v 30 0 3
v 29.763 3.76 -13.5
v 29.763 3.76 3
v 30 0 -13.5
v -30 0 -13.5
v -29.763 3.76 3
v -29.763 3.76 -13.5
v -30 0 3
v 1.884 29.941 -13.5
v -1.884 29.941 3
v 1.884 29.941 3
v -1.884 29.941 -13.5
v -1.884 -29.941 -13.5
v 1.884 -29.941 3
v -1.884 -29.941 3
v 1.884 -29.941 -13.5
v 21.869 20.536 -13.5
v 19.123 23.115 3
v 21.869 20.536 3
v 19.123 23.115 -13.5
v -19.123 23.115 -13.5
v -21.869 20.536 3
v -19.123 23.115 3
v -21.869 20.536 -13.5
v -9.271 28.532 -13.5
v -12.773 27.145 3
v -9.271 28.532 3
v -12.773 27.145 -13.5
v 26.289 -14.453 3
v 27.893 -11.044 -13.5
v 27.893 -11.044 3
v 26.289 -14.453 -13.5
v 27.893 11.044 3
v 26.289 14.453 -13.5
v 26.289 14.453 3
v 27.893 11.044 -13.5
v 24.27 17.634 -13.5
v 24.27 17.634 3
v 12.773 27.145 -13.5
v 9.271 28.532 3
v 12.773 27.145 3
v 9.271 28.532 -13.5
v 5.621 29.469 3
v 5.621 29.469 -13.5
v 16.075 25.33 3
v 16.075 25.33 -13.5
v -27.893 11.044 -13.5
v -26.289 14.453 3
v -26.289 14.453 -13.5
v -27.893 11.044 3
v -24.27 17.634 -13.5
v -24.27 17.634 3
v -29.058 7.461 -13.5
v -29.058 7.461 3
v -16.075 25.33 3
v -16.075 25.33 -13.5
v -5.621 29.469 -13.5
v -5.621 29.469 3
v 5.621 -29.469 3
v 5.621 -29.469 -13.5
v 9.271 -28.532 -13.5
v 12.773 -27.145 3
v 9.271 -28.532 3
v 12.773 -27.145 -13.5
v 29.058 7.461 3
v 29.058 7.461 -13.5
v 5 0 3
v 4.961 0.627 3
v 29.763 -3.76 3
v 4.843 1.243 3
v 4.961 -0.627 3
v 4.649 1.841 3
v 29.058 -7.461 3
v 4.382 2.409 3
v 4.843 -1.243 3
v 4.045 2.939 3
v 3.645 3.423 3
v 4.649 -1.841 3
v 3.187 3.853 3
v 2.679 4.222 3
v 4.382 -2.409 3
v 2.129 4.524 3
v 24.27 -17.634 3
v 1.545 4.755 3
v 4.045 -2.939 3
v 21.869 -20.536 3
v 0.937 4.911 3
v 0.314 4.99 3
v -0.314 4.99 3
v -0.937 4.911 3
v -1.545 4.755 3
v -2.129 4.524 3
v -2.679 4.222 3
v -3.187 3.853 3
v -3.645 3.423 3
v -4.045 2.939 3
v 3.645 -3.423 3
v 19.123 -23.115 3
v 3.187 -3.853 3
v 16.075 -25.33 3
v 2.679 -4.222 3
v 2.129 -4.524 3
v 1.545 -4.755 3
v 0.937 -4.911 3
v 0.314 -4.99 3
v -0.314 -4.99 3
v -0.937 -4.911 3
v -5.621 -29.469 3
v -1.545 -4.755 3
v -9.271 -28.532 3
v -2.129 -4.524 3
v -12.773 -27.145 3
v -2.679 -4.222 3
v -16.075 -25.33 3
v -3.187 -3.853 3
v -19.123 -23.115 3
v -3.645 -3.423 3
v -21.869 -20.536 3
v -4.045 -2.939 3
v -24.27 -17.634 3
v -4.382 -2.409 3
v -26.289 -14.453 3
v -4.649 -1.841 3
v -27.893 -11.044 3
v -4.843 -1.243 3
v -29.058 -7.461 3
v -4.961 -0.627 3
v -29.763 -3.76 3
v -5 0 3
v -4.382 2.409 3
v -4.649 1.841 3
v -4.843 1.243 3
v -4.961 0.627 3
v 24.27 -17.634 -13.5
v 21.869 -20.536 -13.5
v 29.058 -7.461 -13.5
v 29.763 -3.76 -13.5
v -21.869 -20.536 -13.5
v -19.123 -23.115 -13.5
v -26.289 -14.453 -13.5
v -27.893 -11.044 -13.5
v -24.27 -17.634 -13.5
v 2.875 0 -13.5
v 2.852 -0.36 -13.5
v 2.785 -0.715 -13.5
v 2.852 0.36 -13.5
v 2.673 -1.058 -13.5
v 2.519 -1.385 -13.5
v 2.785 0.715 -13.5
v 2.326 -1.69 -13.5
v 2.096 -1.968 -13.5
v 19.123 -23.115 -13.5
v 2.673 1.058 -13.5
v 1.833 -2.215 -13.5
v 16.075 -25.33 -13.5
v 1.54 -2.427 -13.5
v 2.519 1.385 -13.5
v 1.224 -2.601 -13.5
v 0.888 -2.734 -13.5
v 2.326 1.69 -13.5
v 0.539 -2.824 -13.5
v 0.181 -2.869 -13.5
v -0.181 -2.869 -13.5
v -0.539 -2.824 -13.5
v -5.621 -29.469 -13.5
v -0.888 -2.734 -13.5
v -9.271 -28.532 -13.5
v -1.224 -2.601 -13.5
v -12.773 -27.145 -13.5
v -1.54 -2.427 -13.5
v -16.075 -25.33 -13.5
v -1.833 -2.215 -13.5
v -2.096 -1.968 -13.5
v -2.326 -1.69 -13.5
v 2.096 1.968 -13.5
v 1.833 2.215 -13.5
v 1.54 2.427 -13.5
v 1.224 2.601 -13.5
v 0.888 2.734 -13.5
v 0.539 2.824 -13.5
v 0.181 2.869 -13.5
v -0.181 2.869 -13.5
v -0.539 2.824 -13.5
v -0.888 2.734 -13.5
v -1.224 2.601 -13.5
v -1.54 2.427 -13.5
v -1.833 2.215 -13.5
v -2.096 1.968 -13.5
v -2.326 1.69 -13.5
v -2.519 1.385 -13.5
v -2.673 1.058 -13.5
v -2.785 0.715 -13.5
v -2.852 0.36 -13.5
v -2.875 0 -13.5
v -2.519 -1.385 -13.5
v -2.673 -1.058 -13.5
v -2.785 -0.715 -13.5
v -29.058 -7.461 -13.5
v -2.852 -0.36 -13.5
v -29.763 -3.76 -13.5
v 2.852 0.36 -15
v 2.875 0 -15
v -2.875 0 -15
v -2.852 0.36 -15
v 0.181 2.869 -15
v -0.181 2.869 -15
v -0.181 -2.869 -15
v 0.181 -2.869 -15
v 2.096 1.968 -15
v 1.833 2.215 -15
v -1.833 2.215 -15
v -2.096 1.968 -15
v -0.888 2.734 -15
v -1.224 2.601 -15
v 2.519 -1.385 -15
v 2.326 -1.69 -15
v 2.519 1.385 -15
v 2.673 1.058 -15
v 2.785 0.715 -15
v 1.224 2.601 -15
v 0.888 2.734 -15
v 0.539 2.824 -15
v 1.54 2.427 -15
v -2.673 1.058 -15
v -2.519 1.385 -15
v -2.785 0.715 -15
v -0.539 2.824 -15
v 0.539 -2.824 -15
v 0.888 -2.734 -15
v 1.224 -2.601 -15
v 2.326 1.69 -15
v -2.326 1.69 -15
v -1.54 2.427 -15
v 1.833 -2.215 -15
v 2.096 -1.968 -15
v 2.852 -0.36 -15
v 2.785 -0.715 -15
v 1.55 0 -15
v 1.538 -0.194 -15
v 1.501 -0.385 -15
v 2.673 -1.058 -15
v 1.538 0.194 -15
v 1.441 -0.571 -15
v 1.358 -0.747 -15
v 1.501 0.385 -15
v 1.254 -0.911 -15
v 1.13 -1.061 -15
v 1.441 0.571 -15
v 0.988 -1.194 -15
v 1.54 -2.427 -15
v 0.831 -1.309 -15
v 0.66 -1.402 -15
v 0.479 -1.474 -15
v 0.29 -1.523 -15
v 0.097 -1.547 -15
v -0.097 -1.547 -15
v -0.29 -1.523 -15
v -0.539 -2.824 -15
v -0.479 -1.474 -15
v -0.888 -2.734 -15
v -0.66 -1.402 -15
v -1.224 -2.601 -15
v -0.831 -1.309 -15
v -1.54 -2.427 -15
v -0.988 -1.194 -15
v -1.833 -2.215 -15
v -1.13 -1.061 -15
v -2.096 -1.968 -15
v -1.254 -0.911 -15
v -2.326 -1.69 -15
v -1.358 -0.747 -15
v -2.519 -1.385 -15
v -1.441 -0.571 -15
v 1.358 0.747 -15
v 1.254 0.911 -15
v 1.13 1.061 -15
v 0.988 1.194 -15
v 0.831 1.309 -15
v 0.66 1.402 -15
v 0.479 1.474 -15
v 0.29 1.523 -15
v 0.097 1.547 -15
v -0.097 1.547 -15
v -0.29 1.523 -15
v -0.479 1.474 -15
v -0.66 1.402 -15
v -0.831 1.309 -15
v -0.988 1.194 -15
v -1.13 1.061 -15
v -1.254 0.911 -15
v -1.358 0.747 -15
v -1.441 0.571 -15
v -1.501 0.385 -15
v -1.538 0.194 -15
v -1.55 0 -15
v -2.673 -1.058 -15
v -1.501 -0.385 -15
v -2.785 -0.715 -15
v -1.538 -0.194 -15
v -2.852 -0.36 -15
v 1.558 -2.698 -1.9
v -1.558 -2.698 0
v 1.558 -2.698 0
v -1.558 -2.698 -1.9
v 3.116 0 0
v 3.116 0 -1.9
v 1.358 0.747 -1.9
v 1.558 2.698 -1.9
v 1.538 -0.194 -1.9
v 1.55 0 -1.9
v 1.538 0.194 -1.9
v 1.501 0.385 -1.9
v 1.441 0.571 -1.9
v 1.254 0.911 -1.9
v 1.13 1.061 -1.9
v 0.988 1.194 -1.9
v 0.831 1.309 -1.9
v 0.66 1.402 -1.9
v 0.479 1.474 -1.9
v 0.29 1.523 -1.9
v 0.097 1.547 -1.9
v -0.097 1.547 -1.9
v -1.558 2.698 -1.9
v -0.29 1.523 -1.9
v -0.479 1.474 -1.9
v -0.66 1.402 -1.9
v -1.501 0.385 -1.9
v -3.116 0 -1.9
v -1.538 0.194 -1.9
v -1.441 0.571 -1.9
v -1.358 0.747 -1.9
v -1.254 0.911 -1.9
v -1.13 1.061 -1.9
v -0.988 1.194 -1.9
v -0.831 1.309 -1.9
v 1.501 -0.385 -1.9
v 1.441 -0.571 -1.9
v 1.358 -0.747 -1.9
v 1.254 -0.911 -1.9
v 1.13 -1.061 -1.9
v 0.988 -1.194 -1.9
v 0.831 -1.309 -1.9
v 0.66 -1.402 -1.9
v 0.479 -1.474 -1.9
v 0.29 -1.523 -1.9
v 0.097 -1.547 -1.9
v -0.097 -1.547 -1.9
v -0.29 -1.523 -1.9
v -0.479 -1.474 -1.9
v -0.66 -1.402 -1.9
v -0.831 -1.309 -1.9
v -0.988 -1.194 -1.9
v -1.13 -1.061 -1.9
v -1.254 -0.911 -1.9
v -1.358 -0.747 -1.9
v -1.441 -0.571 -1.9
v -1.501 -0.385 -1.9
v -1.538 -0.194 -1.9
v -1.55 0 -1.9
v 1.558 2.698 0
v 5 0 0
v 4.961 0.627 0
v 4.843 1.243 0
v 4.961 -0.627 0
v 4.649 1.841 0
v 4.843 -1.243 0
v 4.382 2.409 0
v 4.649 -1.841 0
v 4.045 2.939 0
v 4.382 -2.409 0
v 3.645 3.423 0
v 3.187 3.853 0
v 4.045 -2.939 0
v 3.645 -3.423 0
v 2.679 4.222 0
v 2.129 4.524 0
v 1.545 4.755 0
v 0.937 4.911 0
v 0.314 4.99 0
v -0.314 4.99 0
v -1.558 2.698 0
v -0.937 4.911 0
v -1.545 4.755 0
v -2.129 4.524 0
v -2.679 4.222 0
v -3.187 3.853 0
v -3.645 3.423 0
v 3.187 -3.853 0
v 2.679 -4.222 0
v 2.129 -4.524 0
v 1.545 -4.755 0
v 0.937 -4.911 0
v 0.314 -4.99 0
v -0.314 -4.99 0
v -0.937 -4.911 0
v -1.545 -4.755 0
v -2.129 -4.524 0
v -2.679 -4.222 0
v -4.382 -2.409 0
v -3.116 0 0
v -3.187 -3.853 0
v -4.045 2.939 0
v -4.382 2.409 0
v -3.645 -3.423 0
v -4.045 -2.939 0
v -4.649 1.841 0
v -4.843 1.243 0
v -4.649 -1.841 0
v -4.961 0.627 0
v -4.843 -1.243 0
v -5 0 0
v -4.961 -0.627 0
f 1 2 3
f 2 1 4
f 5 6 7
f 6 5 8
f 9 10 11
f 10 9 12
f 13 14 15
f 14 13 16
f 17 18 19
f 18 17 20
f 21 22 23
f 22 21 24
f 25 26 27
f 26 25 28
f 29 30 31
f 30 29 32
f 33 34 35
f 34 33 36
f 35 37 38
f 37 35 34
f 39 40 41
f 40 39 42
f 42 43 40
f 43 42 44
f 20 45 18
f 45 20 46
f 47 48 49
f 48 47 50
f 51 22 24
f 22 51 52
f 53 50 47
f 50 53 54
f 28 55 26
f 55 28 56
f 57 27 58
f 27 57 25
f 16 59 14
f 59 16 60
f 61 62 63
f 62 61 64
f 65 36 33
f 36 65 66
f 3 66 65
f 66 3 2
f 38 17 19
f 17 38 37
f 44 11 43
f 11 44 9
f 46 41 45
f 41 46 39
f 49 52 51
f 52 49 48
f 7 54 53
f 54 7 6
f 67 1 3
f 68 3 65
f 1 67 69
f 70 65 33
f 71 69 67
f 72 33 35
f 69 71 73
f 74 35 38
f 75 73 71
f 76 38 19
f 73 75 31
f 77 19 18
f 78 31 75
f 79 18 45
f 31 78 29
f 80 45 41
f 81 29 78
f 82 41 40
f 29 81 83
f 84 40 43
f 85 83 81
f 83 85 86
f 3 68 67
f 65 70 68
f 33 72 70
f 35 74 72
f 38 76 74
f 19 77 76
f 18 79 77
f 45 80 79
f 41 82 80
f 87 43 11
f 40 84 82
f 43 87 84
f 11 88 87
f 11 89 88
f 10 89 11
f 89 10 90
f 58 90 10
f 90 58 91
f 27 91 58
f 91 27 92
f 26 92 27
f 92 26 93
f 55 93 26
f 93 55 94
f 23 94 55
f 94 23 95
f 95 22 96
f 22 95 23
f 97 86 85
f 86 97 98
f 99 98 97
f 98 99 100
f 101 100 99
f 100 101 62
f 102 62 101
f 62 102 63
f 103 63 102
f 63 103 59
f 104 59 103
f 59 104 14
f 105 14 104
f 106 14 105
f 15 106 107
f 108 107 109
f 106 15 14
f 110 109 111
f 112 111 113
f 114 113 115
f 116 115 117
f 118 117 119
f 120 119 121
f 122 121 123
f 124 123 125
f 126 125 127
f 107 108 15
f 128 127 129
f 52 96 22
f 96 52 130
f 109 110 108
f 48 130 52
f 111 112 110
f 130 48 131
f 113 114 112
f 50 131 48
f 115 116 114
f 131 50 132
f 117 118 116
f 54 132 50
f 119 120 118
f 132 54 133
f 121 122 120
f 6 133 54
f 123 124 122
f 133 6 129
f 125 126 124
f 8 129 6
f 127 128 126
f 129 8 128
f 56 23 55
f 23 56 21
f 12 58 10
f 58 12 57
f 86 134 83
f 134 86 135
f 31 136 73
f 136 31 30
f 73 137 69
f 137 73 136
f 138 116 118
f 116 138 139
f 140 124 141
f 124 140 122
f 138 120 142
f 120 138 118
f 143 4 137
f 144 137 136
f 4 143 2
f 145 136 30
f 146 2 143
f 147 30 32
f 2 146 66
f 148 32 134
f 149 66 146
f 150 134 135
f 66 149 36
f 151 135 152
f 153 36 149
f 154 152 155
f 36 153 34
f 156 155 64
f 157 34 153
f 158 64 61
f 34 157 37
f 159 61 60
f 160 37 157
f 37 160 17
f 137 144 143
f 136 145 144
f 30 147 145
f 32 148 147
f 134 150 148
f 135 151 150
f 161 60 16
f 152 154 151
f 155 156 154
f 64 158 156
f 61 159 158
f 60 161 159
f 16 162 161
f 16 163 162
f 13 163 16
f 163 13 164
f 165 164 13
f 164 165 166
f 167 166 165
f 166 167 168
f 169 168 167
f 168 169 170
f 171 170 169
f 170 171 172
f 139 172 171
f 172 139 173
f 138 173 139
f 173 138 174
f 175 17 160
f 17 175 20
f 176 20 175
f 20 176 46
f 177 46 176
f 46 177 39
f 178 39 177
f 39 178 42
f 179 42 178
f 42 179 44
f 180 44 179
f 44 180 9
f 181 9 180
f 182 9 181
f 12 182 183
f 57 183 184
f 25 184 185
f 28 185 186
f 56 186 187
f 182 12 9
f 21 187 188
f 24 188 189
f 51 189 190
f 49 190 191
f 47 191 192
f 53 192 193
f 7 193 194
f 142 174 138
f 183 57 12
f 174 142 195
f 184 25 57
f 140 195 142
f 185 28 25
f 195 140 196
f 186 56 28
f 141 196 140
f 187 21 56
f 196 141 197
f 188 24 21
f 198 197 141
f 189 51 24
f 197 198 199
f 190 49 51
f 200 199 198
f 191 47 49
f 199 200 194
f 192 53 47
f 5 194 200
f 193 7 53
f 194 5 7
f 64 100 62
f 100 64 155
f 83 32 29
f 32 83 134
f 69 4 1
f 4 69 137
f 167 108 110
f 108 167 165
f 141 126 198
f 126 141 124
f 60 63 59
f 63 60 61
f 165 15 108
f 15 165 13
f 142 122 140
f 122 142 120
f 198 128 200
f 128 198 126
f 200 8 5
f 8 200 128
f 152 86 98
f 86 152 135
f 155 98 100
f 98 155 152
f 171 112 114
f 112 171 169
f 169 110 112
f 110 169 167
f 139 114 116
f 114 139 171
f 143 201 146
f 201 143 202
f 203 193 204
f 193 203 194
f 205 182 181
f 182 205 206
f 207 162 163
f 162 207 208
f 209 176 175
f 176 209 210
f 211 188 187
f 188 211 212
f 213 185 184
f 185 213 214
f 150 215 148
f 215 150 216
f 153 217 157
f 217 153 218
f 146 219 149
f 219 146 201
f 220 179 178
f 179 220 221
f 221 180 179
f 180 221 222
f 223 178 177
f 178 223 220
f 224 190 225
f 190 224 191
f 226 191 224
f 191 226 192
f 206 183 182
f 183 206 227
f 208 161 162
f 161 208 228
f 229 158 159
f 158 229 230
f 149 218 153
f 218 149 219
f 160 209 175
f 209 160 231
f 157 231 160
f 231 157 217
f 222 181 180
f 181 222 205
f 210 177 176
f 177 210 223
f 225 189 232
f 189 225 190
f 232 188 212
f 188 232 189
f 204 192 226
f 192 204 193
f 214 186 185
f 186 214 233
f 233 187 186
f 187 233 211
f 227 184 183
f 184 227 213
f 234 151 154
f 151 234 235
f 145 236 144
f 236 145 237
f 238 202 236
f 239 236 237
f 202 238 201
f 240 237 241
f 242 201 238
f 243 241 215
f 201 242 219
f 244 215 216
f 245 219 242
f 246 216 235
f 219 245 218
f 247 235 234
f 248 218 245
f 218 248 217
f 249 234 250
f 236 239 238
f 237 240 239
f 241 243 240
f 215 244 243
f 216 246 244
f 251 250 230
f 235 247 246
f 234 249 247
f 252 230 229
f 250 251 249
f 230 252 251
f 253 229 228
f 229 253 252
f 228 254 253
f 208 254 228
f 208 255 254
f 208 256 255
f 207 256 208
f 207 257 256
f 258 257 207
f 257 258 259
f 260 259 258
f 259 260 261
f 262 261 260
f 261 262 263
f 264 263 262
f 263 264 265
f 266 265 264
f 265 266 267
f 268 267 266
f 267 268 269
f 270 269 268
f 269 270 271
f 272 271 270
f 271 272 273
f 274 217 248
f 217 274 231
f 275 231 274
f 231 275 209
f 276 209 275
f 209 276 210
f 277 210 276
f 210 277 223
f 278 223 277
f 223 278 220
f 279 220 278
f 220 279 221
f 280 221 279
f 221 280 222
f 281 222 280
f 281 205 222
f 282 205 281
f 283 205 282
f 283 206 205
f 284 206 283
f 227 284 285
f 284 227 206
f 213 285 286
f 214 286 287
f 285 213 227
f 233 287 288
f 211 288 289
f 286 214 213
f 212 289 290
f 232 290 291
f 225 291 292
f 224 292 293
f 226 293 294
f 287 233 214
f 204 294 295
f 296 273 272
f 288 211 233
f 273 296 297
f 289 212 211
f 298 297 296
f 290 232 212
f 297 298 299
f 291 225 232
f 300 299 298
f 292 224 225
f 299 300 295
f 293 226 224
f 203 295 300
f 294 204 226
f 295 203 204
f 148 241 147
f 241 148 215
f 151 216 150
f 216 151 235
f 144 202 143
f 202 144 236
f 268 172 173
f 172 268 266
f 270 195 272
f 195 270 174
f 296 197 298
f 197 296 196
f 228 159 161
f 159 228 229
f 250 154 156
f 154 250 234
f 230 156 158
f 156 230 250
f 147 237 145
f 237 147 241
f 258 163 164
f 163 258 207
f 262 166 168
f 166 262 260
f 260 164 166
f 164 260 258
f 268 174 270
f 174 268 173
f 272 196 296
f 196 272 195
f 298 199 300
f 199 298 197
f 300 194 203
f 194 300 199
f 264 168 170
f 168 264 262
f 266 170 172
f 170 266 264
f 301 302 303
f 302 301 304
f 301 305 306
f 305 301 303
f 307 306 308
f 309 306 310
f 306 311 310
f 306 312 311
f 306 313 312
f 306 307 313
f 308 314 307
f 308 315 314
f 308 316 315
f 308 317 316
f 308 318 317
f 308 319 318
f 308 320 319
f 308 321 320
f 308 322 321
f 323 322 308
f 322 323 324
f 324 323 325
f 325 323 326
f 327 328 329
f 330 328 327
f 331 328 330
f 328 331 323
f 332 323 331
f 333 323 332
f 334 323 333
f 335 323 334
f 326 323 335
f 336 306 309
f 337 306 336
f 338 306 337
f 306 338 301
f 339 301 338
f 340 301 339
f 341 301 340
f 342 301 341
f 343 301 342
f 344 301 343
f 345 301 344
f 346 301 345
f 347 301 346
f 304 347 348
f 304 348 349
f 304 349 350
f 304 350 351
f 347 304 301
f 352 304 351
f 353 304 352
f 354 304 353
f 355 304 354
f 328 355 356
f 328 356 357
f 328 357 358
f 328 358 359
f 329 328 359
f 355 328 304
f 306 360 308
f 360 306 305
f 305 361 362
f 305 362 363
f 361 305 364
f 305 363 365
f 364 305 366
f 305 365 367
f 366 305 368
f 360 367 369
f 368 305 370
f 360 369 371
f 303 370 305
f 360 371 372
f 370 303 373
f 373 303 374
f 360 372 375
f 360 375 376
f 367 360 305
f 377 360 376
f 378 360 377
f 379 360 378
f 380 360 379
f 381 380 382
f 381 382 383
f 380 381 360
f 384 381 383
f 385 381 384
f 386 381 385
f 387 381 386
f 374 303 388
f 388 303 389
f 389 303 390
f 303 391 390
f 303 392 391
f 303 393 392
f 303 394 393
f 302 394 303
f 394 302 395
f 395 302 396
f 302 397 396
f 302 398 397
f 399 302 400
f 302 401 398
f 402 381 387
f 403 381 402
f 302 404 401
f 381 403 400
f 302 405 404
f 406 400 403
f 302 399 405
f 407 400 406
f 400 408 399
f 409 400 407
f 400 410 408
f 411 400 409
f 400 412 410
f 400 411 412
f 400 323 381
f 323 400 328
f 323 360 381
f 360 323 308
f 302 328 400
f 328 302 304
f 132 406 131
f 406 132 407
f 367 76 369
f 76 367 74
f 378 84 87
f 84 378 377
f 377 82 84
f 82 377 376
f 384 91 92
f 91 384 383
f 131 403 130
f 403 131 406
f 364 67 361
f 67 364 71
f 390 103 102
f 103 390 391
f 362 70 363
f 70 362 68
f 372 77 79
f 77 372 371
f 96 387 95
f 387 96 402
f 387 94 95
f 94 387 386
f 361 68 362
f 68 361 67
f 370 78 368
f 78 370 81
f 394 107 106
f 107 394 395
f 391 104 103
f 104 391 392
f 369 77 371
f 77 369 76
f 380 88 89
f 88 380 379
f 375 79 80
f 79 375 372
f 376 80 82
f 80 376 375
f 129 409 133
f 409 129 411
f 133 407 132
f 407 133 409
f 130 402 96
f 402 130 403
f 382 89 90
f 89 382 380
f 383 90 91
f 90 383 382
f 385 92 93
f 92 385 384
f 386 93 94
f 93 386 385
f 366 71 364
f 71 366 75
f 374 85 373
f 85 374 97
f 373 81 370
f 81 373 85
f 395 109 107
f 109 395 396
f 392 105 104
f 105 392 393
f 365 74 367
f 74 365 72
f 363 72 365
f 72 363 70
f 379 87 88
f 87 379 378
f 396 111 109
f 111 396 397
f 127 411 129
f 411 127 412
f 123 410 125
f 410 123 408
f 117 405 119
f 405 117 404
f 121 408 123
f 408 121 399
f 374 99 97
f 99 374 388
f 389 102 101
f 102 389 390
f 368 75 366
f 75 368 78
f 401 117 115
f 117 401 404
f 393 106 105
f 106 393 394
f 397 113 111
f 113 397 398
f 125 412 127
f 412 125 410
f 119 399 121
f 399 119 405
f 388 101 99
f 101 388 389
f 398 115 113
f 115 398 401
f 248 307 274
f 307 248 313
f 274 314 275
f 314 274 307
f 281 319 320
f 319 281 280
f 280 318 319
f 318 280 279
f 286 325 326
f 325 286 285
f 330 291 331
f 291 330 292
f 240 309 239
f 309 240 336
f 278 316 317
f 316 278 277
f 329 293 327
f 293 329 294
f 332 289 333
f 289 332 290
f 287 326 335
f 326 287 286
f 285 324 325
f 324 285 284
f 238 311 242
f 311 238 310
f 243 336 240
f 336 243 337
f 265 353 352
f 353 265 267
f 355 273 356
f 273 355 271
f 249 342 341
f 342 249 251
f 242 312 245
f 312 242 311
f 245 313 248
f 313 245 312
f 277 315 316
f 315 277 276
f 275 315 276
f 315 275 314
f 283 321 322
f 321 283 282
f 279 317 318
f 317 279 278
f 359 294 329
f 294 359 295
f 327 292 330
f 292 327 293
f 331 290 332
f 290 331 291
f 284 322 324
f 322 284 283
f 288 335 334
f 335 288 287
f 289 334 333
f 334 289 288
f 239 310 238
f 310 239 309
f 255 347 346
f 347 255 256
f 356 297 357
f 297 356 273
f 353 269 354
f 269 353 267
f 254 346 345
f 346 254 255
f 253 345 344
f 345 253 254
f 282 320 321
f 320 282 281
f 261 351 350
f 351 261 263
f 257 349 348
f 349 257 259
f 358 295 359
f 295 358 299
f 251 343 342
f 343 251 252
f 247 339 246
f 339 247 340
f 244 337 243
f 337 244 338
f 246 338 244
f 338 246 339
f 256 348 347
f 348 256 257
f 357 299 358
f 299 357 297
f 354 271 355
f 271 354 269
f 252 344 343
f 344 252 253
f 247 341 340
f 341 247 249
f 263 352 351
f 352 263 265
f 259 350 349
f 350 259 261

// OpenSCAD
$fn = 50;

difference() {
	union() {
		translate(v = [0, 0, -13.5]) {
			cylinder(h = 16.5, r = 30.0);
		}
		#translate(v = [0, 0, -15.0]) {
			cylinder(h = 15, r = 2.875);
		}
	}
	union() {
		translate(v = [0, 0, 0]) {
			rotate(a = [0, 0, 0]) {
				difference() {
					union() {
						translate(v = [0, 0, -1.9]) {
							linear_extrude(height = 1.9) {
								polygon(points = [[3.1158, 0.0], [1.5579000000000005, 2.698361953111554], [-1.5578999999999994, 2.6983619531115544], [-3.1158, 3.815754496783323e-16], [-1.5579000000000014, -2.6983619531115535], [1.557899999999998, -2.6983619531115552]]);
							}
						}
					}
					union();
				}
			}
		}
		#cylinder(h = 3, r = 5.0);
		#translate(v = [0, 0, -100.0]) {
			cylinder(h = 200, r = 1.55);
		}
	}
}
